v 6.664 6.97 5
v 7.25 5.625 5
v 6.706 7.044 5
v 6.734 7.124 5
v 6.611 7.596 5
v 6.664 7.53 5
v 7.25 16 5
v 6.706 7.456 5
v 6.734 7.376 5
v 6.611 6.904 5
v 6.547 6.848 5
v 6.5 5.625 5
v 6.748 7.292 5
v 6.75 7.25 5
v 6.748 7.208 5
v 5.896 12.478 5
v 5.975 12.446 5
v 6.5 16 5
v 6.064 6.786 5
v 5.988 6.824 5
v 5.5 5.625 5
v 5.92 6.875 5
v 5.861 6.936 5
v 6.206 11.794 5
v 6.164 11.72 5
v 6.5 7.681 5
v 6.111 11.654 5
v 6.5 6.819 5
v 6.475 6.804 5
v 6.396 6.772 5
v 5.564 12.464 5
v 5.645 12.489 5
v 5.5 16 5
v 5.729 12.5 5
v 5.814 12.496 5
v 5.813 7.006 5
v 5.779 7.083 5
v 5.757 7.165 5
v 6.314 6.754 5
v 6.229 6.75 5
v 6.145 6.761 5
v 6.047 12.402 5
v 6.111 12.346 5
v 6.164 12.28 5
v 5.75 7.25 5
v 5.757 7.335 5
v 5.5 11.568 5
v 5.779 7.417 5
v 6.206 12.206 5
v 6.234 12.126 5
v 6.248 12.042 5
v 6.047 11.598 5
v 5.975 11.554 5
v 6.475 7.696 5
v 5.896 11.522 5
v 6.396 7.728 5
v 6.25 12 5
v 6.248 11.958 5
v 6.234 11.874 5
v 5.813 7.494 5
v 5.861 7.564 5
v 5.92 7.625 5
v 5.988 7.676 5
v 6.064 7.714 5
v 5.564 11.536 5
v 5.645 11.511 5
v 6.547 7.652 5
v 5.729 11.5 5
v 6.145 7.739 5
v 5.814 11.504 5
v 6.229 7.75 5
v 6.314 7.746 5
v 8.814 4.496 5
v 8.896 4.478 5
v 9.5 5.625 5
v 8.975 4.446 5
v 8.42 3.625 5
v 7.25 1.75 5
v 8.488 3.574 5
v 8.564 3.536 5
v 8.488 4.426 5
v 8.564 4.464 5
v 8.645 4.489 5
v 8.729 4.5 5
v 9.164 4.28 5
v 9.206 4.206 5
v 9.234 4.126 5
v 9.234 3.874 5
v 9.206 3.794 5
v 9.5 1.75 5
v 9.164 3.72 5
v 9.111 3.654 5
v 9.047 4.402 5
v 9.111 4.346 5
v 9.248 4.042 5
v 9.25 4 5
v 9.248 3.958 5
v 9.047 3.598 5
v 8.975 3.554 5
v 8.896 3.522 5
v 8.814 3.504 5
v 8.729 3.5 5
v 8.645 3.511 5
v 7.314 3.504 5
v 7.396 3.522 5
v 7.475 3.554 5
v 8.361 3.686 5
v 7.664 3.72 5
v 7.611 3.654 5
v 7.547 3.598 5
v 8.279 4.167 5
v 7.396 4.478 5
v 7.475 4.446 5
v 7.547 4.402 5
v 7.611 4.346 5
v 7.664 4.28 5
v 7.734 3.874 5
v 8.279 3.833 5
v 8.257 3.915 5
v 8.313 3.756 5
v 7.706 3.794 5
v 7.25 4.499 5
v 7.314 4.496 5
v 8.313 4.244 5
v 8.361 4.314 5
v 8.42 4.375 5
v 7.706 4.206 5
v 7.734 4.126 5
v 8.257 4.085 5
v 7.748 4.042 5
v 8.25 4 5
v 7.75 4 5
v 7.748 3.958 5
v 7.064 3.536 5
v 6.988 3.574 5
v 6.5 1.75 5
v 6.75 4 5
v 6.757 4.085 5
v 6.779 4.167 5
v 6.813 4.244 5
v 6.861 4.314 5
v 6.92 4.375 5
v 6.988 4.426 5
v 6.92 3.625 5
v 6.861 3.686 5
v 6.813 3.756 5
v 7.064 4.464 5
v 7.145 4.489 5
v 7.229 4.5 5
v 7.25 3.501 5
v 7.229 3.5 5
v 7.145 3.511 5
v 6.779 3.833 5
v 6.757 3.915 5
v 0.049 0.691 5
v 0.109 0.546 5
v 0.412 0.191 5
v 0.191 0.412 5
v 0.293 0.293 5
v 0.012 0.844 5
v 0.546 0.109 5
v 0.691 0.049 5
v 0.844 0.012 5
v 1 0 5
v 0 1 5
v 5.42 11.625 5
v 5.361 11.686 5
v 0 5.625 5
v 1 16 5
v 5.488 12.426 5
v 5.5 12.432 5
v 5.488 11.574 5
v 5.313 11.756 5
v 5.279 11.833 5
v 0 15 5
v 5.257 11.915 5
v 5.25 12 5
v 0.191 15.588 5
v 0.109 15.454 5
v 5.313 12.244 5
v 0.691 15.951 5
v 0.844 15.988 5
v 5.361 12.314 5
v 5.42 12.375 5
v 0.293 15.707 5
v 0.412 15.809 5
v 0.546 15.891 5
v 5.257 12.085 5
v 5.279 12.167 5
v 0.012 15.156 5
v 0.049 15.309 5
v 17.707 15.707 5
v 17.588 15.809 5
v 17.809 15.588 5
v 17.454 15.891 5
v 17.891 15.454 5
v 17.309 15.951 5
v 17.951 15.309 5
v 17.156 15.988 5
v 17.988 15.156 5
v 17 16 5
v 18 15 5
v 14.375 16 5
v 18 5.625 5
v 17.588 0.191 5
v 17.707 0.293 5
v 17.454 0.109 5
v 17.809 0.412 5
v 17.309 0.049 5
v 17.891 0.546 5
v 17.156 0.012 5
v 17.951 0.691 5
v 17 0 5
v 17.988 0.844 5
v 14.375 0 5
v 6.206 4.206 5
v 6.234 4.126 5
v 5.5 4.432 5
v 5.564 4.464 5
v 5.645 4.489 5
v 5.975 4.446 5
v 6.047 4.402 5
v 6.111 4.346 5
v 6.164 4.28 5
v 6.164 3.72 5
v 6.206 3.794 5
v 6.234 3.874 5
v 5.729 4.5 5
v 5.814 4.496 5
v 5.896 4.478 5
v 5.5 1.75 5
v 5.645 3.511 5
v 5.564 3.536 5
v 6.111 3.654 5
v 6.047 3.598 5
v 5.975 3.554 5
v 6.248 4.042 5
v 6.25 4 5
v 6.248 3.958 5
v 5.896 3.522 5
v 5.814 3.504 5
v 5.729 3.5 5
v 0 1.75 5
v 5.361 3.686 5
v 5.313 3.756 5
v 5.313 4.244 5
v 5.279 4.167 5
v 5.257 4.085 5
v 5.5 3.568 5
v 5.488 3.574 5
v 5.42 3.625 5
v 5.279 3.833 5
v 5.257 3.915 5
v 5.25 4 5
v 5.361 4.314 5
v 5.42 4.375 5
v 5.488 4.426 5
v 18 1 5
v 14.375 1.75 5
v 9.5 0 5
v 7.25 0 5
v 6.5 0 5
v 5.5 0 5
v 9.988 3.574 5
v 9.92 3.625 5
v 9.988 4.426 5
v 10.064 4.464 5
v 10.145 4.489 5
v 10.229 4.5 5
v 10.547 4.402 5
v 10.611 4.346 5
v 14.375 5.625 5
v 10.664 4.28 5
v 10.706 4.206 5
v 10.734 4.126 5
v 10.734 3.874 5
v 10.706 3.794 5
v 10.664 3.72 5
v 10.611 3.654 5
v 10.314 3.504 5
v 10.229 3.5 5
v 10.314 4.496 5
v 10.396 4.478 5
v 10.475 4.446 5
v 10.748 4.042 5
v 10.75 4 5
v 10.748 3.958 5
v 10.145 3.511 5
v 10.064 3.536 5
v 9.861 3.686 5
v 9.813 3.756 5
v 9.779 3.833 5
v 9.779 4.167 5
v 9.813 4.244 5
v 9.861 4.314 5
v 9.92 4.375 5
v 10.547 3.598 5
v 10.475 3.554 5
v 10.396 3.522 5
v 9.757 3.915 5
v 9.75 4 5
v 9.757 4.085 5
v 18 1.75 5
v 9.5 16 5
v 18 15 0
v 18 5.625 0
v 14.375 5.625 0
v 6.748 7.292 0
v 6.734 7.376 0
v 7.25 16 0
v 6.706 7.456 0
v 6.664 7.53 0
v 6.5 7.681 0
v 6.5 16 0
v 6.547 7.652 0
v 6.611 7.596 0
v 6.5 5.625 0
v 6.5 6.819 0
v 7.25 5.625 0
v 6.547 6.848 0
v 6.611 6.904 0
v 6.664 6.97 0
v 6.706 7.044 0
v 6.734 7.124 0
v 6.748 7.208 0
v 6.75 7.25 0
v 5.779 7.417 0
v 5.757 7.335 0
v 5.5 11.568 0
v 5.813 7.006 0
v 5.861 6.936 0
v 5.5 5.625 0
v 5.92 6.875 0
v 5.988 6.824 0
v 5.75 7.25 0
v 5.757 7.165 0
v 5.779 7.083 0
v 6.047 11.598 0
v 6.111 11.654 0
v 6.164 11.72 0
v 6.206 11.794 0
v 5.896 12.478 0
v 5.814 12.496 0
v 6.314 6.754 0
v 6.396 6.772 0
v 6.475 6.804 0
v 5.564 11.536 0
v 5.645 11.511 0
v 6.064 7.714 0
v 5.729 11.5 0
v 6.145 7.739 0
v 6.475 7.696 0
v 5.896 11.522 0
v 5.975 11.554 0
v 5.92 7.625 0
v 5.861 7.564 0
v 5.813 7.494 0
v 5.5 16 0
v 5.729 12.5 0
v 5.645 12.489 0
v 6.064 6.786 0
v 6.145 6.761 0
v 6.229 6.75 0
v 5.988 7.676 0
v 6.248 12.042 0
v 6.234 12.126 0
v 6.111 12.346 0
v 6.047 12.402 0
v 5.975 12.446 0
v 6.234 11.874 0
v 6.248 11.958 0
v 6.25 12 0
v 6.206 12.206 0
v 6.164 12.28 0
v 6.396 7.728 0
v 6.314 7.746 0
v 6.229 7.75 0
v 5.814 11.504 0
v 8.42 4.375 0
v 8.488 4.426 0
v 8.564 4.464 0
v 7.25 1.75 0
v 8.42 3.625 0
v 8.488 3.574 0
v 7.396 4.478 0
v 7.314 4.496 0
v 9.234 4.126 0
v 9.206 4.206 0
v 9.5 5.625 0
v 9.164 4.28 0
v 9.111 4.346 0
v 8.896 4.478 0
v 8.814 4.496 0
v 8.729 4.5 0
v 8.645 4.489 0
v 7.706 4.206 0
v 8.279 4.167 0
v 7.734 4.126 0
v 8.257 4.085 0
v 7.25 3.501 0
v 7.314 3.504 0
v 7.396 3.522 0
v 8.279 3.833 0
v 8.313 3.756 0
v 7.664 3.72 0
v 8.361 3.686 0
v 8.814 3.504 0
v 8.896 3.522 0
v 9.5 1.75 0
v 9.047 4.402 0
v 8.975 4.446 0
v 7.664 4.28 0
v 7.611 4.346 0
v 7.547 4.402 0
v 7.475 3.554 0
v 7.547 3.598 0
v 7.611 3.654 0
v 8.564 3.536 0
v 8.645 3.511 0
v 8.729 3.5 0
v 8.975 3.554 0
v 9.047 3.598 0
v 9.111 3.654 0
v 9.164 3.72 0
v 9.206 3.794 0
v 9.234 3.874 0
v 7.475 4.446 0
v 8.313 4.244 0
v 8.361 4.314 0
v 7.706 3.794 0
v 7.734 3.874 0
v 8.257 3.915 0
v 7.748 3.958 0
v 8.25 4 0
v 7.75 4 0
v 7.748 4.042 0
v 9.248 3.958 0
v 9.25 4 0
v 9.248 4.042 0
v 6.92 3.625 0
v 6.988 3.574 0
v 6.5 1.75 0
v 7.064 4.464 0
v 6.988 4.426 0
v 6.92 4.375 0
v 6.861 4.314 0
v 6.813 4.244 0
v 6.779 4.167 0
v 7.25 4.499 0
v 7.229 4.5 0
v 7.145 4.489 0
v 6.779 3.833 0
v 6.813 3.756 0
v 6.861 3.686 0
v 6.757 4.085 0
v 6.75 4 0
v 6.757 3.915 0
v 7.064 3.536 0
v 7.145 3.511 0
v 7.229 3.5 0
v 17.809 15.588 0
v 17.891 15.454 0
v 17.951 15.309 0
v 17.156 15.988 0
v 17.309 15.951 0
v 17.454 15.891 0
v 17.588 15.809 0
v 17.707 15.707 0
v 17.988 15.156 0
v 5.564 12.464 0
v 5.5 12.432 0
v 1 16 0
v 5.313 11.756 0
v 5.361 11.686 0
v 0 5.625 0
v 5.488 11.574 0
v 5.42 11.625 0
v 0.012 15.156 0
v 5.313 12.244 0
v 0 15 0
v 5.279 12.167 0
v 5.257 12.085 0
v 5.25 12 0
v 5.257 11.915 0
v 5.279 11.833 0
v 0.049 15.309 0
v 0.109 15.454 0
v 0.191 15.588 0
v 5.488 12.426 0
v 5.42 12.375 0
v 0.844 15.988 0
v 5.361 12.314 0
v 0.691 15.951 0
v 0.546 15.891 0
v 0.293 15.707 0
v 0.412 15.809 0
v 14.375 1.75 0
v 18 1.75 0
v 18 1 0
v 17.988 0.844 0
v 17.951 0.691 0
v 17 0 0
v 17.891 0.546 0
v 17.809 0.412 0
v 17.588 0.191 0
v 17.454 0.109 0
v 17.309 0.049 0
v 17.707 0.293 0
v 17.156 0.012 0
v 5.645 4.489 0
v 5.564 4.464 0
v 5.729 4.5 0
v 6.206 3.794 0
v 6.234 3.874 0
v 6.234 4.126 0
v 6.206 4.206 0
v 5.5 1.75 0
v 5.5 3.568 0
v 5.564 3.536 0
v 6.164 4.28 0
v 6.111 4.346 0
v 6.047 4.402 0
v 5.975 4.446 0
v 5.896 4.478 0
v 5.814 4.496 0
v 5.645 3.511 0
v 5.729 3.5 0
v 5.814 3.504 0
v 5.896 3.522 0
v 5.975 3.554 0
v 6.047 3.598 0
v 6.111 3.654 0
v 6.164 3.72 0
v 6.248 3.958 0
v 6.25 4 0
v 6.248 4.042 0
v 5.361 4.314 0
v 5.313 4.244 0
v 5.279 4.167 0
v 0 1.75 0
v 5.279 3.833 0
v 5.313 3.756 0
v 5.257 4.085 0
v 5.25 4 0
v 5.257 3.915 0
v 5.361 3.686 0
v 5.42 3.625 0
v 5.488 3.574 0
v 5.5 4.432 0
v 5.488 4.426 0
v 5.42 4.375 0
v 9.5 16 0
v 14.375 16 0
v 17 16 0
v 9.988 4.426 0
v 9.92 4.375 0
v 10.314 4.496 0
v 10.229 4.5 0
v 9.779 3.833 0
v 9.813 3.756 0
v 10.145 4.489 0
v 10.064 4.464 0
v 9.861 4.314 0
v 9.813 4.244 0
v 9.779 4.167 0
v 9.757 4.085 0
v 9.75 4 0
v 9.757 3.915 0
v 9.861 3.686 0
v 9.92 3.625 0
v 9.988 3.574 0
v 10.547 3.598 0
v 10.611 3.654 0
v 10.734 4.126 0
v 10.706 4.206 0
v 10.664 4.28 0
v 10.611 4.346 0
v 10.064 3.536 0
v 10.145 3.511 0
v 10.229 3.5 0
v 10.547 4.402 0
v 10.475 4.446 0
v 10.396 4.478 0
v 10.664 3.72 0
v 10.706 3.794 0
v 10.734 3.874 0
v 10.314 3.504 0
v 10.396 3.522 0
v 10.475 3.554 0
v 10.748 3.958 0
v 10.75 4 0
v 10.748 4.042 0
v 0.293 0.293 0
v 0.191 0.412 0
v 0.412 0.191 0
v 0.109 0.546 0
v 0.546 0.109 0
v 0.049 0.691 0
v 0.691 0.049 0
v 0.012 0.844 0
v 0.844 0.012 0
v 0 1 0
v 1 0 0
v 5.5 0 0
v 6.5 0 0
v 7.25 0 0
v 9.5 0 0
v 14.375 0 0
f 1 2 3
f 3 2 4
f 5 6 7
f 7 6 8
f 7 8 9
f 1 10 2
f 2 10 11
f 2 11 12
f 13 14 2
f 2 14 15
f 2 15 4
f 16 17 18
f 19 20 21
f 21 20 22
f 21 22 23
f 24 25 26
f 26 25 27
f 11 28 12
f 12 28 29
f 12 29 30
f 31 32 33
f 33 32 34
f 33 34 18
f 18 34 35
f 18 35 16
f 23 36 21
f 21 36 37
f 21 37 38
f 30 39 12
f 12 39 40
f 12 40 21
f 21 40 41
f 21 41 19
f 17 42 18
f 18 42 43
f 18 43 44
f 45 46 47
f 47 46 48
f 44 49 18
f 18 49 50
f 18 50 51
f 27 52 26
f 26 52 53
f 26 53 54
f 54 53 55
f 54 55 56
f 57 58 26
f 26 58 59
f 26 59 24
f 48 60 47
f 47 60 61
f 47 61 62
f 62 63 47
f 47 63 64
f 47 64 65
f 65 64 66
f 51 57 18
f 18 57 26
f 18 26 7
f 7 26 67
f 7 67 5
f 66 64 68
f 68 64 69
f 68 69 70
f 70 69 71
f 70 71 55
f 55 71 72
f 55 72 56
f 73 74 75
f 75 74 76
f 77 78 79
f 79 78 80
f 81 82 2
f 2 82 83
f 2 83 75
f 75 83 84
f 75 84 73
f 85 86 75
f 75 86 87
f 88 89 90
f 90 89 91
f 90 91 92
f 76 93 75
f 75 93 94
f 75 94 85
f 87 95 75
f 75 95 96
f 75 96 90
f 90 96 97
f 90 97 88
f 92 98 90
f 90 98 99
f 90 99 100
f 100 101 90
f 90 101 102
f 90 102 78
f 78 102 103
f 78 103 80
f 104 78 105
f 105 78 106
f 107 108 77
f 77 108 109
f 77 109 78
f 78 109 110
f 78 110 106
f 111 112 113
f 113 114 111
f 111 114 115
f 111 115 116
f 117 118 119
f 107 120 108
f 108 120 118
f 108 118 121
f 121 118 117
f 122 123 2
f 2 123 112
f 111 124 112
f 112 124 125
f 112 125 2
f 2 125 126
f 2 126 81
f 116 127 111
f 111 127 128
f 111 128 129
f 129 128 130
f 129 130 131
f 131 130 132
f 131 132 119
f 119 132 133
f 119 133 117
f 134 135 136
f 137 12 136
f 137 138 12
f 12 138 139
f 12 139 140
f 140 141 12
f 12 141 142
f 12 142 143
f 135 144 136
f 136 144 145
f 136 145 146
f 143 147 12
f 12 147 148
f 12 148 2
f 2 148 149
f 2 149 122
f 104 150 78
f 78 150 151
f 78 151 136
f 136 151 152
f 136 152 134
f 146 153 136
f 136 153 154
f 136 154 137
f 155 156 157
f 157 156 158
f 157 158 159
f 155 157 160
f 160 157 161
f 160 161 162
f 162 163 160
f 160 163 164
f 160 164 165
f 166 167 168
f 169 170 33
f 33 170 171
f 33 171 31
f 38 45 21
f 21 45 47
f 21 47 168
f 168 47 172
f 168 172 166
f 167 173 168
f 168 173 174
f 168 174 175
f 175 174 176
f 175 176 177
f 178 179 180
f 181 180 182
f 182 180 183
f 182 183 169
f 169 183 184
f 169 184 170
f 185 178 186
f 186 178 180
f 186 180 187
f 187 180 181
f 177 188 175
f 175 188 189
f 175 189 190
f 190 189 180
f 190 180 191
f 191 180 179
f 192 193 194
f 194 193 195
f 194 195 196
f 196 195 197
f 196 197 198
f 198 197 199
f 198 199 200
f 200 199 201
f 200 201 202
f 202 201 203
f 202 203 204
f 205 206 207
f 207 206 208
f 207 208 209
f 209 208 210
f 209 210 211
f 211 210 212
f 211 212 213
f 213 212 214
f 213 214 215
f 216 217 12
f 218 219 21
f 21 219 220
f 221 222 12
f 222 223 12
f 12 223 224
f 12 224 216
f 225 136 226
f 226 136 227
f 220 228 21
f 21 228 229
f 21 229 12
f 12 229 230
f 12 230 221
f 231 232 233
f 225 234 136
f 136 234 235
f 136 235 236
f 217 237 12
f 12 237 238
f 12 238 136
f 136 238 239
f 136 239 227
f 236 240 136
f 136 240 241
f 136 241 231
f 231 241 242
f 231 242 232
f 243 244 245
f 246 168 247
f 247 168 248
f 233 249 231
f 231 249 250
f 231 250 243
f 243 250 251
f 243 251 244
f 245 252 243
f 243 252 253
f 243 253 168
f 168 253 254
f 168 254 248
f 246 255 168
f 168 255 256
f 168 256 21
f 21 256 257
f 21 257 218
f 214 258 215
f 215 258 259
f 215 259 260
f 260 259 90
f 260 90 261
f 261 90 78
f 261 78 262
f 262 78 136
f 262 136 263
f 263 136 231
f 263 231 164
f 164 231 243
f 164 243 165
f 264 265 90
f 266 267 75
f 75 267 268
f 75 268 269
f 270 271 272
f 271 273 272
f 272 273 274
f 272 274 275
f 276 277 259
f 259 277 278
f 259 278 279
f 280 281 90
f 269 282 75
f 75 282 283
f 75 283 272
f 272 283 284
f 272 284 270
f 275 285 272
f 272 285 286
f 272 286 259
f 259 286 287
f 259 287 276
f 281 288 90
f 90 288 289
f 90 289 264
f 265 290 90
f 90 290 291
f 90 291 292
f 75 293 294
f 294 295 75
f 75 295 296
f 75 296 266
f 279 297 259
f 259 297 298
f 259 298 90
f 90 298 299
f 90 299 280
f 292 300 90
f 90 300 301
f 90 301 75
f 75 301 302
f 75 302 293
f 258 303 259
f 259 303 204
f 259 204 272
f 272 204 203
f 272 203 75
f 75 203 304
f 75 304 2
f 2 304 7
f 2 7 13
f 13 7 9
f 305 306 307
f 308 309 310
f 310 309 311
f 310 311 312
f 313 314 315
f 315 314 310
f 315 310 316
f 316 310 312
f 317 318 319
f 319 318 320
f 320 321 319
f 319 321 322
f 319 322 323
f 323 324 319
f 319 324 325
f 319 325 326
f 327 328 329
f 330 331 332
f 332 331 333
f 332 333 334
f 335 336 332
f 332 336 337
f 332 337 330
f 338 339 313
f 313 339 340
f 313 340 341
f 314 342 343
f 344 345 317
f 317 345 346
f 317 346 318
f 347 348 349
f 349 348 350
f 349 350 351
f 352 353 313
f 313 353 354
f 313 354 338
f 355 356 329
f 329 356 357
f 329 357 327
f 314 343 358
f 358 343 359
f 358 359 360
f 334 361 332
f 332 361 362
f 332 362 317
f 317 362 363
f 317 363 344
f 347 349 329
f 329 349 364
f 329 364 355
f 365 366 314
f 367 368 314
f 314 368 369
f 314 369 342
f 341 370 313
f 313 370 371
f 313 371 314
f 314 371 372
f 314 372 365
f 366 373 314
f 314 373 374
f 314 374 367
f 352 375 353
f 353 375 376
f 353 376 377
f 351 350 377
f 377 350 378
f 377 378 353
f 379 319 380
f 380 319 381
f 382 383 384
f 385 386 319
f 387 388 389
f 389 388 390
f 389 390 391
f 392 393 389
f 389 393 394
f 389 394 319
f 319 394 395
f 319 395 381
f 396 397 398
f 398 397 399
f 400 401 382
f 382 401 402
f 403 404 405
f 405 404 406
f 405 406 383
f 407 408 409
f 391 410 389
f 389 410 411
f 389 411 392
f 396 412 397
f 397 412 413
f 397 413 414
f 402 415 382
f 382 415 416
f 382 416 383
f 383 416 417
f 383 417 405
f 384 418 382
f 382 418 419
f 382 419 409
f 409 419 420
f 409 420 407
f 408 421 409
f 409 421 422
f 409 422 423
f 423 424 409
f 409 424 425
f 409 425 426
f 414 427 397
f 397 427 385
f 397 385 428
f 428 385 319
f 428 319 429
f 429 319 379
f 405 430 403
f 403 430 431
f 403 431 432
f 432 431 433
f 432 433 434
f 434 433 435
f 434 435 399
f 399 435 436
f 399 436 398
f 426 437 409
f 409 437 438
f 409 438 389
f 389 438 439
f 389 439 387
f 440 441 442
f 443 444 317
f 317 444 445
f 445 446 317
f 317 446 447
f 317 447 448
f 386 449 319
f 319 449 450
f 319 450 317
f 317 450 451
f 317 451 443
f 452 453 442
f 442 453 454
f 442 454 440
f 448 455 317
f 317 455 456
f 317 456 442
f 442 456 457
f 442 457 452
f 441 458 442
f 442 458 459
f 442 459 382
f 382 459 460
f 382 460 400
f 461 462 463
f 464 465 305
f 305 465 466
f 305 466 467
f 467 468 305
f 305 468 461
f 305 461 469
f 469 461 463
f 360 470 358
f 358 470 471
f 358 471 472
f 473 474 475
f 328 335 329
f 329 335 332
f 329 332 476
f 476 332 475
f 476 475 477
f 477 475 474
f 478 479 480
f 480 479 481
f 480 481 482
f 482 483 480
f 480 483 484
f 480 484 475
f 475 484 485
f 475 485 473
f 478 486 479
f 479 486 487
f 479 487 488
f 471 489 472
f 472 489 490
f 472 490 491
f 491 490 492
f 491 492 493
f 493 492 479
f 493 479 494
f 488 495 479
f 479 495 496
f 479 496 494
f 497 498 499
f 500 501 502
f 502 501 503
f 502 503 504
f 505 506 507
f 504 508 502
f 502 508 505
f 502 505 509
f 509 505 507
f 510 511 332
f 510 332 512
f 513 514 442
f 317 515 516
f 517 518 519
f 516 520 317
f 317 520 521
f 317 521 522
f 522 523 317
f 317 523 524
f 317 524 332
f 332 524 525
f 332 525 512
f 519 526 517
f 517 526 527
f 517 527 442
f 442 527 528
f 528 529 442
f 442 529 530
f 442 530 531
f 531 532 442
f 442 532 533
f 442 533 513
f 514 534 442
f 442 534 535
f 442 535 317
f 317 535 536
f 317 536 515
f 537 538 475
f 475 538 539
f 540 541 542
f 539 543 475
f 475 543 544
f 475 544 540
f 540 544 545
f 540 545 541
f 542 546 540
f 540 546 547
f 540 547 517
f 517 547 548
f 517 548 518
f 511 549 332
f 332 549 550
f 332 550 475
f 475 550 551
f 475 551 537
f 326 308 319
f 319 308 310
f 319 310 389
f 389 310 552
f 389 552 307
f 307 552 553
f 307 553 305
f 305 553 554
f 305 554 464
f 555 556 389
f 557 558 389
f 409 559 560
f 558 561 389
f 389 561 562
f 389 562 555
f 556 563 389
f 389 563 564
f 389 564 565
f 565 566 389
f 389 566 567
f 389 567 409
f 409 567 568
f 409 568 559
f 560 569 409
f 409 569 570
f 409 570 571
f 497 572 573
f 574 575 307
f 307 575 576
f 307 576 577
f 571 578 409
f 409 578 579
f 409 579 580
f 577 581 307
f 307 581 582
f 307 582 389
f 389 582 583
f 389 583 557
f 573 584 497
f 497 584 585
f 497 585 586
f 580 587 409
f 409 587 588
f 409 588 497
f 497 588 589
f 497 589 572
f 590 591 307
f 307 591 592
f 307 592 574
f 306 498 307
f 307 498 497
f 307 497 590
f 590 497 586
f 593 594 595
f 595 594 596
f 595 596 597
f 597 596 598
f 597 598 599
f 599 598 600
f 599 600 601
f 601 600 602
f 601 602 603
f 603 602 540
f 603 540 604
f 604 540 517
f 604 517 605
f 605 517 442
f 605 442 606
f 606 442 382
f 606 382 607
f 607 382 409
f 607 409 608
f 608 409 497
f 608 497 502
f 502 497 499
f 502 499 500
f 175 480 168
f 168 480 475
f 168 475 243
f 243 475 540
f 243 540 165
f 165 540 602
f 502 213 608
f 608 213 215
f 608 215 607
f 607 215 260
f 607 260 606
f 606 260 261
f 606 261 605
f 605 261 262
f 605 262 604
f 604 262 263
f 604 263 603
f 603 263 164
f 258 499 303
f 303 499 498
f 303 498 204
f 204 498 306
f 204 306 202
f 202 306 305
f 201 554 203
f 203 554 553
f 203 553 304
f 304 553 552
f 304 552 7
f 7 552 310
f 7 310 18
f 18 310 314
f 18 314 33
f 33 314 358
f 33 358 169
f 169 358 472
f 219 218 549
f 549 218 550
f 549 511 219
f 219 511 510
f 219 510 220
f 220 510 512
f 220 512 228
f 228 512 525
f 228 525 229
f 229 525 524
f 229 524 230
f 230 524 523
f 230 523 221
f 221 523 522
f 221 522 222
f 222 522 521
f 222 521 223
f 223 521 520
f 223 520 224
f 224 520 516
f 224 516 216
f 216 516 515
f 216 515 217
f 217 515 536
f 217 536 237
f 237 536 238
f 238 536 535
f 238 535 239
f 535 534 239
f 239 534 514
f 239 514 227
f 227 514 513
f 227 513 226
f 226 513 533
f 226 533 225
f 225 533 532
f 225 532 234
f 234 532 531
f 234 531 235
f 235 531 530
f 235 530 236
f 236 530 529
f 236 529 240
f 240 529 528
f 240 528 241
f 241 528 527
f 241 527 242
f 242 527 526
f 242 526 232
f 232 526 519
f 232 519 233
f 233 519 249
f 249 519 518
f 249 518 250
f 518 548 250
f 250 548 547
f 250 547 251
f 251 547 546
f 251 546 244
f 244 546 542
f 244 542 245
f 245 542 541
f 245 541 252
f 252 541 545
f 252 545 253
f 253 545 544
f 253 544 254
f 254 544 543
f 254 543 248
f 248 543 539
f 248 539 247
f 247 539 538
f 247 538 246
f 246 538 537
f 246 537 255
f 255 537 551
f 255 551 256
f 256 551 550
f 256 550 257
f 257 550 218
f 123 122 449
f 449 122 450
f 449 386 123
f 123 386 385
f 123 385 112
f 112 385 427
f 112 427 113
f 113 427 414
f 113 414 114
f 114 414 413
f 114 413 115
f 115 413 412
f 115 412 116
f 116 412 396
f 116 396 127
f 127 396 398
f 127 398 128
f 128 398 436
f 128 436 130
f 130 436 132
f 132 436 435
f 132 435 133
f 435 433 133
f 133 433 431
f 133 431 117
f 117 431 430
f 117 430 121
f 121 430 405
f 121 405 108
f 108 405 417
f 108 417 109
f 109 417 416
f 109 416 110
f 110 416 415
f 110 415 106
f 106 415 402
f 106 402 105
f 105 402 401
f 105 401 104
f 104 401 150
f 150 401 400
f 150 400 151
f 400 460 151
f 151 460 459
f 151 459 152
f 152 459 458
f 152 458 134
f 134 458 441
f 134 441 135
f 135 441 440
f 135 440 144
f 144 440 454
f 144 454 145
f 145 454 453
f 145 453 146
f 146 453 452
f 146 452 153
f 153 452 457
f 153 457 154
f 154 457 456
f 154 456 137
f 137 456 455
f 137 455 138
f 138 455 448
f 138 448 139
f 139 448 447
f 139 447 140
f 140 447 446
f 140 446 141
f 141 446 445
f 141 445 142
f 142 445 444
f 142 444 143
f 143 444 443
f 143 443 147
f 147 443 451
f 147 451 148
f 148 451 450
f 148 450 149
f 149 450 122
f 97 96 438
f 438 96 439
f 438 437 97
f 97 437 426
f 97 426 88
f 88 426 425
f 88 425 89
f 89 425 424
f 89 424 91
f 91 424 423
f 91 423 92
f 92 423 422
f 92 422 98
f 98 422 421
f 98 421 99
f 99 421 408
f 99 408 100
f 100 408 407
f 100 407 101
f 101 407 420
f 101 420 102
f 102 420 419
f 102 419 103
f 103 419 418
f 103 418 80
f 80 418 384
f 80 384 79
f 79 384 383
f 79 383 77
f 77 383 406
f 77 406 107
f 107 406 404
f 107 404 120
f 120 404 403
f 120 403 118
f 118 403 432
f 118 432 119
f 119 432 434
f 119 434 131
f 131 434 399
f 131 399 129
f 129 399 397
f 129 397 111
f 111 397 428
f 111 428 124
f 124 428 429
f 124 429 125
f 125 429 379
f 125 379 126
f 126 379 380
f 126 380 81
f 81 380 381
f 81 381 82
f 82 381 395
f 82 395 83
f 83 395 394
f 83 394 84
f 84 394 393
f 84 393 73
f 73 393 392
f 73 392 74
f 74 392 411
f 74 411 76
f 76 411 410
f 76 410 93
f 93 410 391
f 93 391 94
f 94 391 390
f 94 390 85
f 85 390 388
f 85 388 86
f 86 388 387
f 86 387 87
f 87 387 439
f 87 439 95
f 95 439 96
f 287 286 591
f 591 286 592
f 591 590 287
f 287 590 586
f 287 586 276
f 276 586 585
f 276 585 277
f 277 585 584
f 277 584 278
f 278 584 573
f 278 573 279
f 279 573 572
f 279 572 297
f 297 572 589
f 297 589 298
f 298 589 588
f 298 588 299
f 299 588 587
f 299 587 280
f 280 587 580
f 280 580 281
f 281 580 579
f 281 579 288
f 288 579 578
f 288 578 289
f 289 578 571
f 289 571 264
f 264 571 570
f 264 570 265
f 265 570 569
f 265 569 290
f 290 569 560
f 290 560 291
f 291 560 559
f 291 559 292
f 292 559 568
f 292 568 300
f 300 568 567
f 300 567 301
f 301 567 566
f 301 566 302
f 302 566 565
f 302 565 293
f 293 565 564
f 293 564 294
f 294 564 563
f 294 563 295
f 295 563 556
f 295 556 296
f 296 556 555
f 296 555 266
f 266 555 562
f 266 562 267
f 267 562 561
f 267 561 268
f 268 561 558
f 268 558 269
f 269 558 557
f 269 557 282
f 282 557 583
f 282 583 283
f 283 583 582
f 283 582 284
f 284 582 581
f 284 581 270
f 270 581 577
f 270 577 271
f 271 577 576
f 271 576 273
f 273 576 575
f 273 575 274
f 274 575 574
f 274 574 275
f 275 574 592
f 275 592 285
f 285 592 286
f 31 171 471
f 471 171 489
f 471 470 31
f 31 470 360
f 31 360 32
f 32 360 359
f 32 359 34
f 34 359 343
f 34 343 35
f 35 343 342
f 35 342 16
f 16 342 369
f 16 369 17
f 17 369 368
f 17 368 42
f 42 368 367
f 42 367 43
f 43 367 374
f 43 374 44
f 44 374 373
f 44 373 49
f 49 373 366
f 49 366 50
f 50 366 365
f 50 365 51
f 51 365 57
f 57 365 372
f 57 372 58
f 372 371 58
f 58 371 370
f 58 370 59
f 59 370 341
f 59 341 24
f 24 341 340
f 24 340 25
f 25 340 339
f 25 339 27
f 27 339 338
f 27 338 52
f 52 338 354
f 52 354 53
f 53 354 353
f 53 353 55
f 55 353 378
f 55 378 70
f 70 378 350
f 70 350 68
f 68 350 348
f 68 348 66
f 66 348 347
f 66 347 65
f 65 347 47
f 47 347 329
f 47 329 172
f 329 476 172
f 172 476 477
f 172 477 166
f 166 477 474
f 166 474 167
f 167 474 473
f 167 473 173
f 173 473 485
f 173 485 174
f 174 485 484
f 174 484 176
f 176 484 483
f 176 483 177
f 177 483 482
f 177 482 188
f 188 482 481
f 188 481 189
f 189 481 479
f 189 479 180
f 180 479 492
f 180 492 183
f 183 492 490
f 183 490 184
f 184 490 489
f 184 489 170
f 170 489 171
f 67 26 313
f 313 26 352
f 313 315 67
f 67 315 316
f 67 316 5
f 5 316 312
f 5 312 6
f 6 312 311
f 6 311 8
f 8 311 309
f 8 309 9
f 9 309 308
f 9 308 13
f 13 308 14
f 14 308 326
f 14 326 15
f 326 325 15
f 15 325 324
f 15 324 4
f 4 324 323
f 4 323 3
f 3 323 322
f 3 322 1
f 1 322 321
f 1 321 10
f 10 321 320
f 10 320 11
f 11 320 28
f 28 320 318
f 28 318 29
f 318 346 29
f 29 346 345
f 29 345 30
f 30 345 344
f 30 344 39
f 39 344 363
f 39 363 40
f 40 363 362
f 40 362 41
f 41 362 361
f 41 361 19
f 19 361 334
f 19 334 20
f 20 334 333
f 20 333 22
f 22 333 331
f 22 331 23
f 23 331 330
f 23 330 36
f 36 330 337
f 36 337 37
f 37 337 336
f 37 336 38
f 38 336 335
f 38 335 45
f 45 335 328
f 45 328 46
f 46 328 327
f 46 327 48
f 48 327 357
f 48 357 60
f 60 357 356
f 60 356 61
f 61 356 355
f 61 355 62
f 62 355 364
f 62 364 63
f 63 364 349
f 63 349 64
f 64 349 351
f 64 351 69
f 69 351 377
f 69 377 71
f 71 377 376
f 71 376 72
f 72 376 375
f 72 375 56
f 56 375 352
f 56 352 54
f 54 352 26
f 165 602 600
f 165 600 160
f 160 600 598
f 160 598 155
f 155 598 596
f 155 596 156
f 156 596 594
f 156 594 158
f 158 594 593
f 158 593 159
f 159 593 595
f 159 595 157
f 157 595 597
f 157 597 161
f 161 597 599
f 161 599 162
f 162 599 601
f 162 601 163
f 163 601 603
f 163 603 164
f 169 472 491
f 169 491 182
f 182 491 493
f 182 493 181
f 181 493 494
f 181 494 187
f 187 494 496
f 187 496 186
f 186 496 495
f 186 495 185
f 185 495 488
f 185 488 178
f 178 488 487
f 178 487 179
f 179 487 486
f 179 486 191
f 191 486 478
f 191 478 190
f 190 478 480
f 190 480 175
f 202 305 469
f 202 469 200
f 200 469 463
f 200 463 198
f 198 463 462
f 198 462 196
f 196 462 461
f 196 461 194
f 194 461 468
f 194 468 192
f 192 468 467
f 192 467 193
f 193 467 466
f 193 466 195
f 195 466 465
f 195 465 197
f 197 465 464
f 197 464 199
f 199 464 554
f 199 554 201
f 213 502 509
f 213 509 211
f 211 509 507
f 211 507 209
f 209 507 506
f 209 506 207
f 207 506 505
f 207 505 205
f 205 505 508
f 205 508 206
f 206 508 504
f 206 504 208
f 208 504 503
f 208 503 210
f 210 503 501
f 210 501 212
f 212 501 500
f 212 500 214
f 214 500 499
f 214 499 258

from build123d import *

# Parameters (mm, degrees)
SKETCH1_W           = 18
SKETCH1_H           = 16
SKETCH1_R           = 0.5
BOSS_EXTRUDE1_DEPTH = 5
FILLET2_R           = 1
FILLET3_R           = 1
FILLET4_R           = 1
FILLET5_R           = 1


with BuildPart() as part:
    # Sketch1 → Boss-Extrude1 (new body)
    with BuildSketch(Plane.XY):
        with Locations((9, 8)):
            Rectangle(SKETCH1_W, SKETCH1_H)
        with Locations((5.75, 4)):
            Circle(SKETCH1_R, mode=Mode.SUBTRACT)
        with Locations((7.25, 4)):
            Circle(SKETCH1_R, mode=Mode.SUBTRACT)
        with Locations((8.75, 4)):
            Circle(SKETCH1_R, mode=Mode.SUBTRACT)
        with Locations((10.25, 4)):
            Circle(SKETCH1_R, mode=Mode.SUBTRACT)
        with Locations((5.75, 12)):
            Circle(SKETCH1_R, mode=Mode.SUBTRACT)
        with Locations((6.25, 7.25)):
            Circle(SKETCH1_R, mode=Mode.SUBTRACT)
    extrude(amount=BOSS_EXTRUDE1_DEPTH)

    # Fillet2
    fillet2_edges = [part.edges().sort_by_distance(p)[0] for p in [
        (0, 0, 2.5),
    ]]
    fillet(fillet2_edges, radius=FILLET2_R)

    # Fillet3
    fillet3_edges = [part.edges().sort_by_distance(p)[0] for p in [
        (0, 16, 2.5),
    ]]
    fillet(fillet3_edges, radius=FILLET3_R)

    # Fillet4
    fillet4_edges = [part.edges().sort_by_distance(p)[0] for p in [
        (18, 16, 2.5),
    ]]
    fillet(fillet4_edges, radius=FILLET4_R)

    # Fillet5
    fillet5_edges = [part.edges().sort_by_distance(p)[0] for p in [
        (18, 0, 2.5),
    ]]
    fillet(fillet5_edges, radius=FILLET5_R)


solid = part.part
